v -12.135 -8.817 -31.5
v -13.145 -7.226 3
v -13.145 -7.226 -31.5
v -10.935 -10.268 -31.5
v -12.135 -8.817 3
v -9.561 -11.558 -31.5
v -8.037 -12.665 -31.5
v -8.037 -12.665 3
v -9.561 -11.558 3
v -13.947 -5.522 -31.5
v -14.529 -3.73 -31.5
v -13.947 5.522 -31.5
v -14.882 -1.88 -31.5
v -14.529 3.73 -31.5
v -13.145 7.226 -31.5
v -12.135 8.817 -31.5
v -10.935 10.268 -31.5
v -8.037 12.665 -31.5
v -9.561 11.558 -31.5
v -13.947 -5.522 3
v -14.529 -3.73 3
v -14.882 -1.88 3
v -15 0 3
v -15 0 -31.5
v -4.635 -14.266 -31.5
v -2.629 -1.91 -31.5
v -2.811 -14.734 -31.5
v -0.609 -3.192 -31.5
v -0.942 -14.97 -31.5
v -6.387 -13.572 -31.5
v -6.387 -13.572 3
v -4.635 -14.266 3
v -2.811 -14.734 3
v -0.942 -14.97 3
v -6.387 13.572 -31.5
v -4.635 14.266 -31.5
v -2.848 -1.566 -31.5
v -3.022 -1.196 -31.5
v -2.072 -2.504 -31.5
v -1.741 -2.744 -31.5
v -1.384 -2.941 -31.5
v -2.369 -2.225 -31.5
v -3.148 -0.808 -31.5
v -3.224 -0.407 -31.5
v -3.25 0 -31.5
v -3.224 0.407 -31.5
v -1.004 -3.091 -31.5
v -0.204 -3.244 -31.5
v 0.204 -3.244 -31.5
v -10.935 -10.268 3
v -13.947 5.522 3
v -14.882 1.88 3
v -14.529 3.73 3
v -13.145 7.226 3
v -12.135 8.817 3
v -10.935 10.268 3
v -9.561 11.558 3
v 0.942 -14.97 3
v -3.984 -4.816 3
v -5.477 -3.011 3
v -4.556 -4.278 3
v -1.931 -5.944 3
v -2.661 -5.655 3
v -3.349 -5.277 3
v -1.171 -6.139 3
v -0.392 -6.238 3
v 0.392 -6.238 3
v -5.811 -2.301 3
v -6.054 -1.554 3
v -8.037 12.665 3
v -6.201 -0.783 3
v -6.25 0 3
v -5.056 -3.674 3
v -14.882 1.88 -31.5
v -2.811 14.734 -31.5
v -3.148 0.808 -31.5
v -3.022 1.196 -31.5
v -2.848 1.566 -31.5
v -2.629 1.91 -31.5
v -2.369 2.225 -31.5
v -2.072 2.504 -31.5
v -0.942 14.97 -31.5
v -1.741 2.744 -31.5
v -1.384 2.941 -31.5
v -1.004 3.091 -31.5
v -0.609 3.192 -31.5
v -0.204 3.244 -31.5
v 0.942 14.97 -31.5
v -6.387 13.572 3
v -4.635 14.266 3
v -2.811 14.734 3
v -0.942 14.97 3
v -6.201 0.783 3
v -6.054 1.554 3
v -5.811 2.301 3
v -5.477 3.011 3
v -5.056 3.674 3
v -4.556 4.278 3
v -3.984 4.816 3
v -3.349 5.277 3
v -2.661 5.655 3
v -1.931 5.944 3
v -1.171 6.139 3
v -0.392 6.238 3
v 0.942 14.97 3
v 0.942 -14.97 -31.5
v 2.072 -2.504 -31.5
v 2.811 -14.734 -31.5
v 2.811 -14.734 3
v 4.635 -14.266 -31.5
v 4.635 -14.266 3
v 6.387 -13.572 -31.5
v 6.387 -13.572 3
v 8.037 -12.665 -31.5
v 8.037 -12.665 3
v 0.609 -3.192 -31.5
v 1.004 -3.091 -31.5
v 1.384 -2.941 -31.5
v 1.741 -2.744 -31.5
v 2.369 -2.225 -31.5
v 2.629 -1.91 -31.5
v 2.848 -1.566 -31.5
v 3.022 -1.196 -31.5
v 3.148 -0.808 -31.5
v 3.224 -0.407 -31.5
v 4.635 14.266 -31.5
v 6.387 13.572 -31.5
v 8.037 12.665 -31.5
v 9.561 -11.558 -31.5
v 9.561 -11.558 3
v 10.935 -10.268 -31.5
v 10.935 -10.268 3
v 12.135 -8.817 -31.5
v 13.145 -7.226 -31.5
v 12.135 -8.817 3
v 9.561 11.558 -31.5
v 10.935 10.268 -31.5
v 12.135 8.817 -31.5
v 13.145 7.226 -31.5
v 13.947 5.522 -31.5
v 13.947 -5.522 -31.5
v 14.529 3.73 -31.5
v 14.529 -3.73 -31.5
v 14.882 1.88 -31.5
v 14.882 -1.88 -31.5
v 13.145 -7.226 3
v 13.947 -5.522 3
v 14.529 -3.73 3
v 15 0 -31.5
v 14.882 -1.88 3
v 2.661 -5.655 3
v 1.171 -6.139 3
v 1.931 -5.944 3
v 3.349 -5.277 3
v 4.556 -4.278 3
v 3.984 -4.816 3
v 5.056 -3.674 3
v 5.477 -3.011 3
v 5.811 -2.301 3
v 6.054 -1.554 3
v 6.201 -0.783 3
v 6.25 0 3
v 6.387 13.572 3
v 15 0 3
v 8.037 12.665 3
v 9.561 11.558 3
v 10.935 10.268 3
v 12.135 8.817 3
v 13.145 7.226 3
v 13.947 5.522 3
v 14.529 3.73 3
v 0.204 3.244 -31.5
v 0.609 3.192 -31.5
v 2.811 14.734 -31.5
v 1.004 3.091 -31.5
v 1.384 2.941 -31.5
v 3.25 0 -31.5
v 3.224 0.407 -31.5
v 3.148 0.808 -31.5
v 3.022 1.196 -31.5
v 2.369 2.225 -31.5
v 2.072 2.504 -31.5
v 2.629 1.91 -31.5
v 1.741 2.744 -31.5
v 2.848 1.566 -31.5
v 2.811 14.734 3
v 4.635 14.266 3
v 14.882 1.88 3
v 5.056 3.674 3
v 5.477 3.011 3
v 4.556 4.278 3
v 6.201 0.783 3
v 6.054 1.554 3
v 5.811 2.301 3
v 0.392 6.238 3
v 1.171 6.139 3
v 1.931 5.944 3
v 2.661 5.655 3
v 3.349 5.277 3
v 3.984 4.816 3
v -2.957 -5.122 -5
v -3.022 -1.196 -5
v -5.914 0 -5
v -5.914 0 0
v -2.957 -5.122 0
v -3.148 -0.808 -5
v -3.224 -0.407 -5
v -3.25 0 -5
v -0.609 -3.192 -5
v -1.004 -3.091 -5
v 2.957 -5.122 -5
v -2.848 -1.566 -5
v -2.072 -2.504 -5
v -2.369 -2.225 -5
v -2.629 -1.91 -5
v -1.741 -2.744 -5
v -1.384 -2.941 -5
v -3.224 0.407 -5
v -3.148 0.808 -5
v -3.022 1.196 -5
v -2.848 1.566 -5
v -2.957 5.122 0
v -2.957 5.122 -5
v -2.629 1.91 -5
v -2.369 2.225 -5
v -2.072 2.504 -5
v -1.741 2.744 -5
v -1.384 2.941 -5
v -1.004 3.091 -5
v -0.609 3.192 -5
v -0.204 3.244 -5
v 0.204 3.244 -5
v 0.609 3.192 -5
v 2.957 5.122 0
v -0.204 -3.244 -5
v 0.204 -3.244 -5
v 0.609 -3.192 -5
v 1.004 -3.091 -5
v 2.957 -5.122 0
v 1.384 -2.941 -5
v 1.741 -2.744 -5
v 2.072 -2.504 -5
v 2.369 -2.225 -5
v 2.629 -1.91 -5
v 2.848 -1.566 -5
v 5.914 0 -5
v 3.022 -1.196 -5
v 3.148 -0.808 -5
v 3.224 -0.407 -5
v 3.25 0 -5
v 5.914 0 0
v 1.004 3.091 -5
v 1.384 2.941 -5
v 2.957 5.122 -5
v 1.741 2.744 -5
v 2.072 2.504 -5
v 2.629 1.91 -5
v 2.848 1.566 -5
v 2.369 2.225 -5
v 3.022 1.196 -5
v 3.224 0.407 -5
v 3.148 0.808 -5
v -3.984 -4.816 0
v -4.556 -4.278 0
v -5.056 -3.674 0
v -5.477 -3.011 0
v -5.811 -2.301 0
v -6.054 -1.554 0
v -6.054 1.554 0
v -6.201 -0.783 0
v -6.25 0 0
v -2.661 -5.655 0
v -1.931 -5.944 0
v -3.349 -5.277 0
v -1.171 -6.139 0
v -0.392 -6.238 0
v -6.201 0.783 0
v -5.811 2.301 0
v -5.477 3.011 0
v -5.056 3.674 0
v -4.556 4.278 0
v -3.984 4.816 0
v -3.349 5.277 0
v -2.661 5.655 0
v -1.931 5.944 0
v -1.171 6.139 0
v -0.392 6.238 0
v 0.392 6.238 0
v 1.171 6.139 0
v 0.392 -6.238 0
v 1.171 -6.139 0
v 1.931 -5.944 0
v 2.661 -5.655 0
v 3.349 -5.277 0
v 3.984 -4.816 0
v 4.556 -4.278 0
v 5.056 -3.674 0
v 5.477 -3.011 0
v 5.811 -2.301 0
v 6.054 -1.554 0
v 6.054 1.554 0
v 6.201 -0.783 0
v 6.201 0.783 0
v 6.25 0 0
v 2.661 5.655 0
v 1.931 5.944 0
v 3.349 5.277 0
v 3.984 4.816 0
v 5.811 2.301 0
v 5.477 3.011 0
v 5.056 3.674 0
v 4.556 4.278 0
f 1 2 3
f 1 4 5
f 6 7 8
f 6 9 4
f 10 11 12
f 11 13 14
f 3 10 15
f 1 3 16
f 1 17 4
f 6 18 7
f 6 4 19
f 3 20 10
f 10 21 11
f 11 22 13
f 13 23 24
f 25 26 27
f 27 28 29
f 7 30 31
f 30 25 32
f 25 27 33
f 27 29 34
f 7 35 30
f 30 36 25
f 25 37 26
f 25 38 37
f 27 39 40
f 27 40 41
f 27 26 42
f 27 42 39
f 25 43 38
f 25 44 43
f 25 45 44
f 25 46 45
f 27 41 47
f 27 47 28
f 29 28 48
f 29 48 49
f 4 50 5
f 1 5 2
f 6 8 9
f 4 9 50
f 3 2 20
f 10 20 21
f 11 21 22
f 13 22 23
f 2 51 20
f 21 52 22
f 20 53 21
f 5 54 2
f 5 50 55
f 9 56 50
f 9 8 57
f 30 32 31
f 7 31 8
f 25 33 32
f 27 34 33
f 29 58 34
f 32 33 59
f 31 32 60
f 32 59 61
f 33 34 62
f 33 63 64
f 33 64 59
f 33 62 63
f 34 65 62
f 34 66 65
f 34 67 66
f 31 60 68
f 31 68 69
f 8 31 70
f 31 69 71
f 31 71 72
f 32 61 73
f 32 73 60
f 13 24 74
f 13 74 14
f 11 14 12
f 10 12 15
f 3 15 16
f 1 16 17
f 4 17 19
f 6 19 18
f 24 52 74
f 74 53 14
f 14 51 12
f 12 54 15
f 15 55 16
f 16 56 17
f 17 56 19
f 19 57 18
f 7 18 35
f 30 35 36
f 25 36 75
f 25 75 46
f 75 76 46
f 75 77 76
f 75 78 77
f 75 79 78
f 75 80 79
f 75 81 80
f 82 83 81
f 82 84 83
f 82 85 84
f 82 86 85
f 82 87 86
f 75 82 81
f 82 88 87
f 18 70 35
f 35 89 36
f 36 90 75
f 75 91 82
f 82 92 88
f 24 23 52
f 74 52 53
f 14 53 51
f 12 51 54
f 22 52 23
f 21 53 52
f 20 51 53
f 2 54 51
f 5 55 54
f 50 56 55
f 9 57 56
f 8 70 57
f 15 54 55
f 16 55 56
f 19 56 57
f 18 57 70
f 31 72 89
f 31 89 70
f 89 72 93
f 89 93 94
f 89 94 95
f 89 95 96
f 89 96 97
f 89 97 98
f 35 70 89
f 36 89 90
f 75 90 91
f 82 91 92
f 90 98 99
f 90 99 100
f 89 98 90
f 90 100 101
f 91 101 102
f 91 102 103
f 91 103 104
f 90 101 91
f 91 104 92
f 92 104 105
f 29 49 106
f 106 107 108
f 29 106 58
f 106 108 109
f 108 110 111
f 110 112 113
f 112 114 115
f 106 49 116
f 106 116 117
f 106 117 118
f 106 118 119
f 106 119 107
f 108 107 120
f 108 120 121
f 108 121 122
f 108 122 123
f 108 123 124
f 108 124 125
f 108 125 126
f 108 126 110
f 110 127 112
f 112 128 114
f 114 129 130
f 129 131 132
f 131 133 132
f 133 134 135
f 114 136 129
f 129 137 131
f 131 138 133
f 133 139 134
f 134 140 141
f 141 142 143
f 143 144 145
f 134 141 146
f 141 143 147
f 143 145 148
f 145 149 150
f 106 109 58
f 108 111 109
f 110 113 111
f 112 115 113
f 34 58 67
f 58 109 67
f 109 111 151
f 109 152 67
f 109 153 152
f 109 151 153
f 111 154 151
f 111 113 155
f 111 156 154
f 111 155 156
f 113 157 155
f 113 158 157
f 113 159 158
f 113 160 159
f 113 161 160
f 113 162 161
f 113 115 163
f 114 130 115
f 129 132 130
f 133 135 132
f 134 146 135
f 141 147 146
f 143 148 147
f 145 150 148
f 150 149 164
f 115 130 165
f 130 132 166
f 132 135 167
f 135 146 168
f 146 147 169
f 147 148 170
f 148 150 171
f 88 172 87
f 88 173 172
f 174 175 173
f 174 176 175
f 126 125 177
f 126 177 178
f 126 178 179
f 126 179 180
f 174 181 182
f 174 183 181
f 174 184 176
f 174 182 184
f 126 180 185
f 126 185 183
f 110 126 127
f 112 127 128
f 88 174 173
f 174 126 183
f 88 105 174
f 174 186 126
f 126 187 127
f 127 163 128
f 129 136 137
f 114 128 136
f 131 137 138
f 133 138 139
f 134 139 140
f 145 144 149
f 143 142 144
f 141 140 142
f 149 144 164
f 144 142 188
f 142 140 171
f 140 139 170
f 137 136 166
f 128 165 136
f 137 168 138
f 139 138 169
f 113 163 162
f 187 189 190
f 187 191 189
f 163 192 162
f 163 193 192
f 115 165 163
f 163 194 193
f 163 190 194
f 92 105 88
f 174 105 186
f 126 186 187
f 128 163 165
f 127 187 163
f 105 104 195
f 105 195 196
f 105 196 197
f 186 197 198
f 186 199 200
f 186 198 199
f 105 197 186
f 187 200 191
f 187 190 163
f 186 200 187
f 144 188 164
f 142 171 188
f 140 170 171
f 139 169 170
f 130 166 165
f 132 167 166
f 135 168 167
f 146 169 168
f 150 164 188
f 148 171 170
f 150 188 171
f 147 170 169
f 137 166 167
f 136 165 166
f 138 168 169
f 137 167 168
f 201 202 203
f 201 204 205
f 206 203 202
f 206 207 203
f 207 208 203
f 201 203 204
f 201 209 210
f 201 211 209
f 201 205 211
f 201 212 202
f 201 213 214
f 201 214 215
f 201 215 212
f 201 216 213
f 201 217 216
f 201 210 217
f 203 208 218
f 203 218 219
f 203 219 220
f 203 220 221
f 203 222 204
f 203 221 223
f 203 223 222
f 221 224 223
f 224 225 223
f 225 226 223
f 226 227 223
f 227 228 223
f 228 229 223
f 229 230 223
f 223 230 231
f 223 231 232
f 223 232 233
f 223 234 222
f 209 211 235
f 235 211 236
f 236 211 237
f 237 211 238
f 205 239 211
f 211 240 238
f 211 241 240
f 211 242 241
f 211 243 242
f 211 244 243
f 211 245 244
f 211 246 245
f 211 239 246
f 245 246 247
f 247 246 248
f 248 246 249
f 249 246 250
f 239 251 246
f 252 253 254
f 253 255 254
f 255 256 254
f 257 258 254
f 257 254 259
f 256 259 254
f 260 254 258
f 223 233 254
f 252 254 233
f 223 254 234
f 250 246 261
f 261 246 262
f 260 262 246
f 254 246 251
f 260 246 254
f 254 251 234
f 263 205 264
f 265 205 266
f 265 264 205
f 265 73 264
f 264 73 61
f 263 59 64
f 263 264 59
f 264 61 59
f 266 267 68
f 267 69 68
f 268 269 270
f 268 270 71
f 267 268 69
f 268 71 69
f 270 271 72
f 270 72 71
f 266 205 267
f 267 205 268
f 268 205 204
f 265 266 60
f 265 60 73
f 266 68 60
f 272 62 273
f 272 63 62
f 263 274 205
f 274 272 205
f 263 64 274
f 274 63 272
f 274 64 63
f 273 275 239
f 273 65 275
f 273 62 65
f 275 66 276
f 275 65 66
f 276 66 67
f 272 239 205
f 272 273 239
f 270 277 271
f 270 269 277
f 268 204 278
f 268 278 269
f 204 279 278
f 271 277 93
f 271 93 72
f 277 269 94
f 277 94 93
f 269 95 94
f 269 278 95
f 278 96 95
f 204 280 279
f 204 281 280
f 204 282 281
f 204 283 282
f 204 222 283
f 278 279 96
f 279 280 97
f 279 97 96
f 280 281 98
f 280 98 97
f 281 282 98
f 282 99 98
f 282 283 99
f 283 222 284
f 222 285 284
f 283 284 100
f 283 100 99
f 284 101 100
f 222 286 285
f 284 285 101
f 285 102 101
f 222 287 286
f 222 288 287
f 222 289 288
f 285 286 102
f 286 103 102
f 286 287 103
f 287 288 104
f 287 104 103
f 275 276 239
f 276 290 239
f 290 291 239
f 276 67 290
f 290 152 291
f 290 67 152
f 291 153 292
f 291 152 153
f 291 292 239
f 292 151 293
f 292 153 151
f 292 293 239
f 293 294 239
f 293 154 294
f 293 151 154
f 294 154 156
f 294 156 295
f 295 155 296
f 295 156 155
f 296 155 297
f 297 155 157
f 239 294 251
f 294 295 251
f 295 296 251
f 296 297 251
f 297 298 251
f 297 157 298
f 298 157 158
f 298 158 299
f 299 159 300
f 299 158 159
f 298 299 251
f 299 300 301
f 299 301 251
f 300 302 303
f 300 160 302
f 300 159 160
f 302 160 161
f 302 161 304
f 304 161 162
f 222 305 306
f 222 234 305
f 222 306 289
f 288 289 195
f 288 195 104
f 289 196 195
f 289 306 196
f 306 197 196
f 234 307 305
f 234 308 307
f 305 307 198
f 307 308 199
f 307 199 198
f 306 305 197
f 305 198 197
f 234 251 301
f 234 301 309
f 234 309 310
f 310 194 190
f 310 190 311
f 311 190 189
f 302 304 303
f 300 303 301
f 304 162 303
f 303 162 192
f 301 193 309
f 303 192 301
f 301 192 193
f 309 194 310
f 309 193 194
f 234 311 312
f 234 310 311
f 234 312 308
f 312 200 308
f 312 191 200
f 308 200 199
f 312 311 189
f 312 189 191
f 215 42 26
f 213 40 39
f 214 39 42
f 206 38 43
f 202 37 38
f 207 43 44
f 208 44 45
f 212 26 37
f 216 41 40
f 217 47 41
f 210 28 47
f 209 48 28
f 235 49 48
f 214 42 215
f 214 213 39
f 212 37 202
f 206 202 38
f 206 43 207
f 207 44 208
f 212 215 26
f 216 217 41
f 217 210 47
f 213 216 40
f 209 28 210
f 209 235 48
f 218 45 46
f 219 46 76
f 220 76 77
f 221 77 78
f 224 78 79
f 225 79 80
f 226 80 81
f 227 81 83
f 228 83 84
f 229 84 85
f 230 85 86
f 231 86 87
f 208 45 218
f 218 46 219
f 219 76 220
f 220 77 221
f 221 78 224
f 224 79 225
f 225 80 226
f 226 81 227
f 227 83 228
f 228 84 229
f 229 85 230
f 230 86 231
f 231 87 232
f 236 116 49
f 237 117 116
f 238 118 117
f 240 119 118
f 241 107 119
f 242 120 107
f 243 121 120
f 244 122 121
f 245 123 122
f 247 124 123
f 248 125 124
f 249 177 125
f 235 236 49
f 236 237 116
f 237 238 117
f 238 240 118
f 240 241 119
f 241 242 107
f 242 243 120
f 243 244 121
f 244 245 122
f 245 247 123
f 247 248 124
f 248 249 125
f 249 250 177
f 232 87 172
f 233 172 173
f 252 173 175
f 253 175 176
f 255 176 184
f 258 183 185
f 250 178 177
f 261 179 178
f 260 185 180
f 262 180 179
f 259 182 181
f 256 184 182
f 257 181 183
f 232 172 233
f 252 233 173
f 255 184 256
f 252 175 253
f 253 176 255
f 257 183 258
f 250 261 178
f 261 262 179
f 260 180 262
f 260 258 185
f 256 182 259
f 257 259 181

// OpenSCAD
$fn = 50;

difference() {
	union() {
		translate(v = [0, 0, -31.5]) {
			cylinder(h = 34.5, r = 15.0);
		}
		#translate(v = [0, 0, -33.0]) {
			cylinder(h = 33, r = 2.875);
		}
	}
	union() {
		translate(v = [0, 0, 0]) {
			rotate(a = [0, 0, 0]) {
				difference() {
					union() {
						translate(v = [0, 0, -5]) {
							linear_extrude(height = 5) {
								polygon(points = [[5.914249999999999, 0.0], [2.957125, 5.1218907443321156], [-2.9571249999999982, 5.1218907443321156], [-5.914249999999999, 7.242867331857232e-16], [-2.9571250000000022, -5.121890744332115], [2.9571249999999956, -5.121890744332118]]);
							}
						}
					}
					union();
				}
			}
		}
		#cylinder(h = 3, r = 6.25);
		#translate(v = [0, 0, -100.0]) {
			cylinder(h = 200, r = 3.25);
		}
	}
}
